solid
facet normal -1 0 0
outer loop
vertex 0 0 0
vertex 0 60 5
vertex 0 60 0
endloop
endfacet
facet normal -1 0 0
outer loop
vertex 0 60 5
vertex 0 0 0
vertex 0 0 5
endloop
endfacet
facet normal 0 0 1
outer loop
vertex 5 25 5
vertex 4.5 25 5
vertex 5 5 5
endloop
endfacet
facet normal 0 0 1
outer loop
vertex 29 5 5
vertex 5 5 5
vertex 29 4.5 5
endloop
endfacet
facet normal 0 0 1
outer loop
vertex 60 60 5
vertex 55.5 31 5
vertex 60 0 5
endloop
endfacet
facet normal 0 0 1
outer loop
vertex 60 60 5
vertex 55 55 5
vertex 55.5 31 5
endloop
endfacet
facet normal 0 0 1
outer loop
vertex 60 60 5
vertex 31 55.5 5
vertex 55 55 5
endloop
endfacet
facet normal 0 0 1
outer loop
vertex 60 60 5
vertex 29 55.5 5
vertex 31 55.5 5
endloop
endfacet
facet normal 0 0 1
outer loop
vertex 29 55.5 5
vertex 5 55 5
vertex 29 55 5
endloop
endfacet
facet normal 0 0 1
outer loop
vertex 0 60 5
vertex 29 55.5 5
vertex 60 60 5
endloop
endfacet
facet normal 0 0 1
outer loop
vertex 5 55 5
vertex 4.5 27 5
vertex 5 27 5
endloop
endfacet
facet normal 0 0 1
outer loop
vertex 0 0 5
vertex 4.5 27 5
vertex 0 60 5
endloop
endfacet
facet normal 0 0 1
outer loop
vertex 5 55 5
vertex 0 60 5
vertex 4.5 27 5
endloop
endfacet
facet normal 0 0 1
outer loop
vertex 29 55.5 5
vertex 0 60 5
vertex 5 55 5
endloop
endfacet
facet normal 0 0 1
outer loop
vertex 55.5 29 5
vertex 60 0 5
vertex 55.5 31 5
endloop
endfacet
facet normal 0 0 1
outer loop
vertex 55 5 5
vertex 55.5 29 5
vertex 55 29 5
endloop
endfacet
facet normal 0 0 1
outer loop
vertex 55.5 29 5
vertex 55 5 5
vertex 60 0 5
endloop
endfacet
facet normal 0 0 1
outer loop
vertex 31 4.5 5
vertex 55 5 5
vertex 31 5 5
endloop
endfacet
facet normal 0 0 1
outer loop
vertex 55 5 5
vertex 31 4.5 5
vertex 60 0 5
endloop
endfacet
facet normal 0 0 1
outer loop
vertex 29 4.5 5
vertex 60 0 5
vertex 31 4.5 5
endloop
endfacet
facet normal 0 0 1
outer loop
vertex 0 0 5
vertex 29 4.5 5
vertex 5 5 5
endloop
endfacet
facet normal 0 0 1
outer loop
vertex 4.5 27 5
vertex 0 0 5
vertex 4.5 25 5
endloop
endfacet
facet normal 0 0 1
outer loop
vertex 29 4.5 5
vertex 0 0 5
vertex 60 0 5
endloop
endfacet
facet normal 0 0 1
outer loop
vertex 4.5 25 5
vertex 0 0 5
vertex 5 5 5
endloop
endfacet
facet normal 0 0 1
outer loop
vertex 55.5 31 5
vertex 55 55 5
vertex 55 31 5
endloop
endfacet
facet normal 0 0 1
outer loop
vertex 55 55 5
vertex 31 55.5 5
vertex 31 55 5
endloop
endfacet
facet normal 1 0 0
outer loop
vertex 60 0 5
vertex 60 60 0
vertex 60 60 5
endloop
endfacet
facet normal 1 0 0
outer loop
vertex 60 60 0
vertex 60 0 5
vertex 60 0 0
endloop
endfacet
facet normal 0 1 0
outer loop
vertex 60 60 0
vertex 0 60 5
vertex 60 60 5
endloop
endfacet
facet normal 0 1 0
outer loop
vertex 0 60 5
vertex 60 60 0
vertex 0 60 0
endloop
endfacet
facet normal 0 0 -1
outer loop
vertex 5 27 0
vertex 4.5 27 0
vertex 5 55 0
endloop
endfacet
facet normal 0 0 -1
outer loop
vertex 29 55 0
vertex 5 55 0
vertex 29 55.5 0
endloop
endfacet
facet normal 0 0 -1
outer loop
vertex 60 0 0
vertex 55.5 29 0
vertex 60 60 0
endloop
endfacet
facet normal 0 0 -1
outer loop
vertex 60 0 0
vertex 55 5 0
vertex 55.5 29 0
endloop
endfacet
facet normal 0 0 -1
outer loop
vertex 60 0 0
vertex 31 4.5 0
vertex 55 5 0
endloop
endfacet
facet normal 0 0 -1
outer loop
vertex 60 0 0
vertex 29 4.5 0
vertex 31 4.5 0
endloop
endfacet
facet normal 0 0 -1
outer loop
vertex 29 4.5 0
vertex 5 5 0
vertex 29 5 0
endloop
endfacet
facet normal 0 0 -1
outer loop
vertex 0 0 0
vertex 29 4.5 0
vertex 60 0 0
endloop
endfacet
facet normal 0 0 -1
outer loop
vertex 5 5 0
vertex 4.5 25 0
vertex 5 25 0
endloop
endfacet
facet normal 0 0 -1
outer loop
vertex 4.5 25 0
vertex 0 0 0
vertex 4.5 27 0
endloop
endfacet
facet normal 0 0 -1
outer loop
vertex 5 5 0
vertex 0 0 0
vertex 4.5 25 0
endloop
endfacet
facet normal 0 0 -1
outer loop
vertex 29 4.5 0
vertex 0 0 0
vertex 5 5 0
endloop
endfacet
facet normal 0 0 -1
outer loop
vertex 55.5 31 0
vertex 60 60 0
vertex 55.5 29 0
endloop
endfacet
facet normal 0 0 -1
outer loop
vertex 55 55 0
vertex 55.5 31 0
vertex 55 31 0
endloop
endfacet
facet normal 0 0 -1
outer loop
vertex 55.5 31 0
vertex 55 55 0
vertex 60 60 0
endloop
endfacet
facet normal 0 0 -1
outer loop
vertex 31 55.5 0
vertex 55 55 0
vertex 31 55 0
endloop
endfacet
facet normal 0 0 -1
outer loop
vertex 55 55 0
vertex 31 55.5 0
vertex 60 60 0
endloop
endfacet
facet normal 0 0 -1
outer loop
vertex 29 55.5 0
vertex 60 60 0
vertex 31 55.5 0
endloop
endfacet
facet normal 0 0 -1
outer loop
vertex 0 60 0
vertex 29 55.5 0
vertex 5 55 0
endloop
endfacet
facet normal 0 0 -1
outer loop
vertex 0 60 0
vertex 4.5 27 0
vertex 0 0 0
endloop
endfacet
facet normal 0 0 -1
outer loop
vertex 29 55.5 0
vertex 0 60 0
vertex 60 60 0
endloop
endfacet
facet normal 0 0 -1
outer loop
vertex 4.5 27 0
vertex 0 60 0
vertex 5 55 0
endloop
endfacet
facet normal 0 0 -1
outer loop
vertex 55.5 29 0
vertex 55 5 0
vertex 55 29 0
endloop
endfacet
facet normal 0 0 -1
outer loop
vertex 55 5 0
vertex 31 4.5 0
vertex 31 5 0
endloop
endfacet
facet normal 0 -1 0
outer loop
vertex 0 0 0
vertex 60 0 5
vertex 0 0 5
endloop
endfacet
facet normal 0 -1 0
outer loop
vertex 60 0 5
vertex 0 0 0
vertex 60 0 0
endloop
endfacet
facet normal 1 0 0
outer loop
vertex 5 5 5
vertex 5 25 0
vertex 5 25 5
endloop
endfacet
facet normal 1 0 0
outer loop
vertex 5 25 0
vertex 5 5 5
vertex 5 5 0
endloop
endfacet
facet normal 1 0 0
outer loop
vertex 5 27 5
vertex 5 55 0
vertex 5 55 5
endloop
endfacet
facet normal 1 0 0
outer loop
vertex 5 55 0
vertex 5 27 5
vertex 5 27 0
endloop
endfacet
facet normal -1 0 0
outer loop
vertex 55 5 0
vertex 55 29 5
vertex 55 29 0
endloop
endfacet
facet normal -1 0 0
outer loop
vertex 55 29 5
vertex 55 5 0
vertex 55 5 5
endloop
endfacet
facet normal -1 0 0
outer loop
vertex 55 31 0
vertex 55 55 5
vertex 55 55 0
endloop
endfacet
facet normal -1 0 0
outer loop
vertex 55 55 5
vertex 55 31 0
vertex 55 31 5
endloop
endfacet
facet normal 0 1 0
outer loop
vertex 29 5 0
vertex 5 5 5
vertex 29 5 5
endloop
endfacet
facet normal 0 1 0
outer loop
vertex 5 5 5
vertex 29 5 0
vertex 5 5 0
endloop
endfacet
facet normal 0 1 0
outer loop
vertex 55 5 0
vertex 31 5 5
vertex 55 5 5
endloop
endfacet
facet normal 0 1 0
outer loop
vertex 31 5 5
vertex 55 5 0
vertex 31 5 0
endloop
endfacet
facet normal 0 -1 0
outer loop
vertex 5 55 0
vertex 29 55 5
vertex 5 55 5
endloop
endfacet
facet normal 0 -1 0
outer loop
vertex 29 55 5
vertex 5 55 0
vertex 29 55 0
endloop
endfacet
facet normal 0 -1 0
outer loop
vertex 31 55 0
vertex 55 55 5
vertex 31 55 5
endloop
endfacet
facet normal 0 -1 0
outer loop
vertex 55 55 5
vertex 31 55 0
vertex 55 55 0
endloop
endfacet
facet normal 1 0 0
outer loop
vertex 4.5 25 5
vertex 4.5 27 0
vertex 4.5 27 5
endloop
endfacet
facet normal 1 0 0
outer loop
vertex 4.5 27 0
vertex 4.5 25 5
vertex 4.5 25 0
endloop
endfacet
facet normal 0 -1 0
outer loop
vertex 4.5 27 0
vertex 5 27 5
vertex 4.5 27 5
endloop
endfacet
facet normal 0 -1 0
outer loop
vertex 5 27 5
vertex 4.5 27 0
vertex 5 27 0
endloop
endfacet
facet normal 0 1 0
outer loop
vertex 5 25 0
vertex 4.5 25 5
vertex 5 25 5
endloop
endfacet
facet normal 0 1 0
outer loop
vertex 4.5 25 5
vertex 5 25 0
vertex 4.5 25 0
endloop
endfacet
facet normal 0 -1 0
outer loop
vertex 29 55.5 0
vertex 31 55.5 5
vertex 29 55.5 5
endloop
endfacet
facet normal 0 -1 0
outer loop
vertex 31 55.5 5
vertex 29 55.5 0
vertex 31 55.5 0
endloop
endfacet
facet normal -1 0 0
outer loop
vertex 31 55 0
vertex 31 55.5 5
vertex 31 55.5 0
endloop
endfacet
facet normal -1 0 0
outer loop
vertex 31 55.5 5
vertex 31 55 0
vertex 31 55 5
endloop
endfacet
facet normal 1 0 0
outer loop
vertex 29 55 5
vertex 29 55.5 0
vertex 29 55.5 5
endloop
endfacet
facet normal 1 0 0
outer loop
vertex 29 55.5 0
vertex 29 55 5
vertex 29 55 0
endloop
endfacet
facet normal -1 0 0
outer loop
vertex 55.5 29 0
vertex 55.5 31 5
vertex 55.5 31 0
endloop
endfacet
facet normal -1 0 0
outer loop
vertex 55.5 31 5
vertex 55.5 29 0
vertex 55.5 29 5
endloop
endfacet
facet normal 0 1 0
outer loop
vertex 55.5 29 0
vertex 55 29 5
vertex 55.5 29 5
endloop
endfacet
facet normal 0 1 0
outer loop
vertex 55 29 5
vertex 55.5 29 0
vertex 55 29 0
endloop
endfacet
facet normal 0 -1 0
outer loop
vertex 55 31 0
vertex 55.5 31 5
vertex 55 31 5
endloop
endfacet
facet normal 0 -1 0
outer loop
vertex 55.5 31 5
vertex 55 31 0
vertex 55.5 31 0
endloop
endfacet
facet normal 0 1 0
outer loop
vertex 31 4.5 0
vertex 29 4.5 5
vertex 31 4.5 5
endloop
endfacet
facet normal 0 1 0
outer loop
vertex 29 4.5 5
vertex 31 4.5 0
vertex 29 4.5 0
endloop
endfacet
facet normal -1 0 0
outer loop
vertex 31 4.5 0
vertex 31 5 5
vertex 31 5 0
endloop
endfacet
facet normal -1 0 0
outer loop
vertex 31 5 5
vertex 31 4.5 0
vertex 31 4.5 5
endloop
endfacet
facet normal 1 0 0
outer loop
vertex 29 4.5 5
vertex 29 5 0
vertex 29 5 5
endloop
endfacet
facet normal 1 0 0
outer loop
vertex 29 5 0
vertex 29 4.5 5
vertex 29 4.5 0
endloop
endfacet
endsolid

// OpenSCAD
// Test square
//
// Generate STL using OpenSCAD:
//   openscad square.scad -o square.stl

square_width = 5;
square_size = 60;
square_height = 5;

module hollow_square() {
    difference() {
        cube([square_size, square_size, square_height]);
        translate([square_width, square_width, -1])
            cube([square_size-2*square_width, square_size-2*square_width,
                  square_height+2]);
    }
}

module notch() {
    CUT = 0.01;
    depth = .5;
    width = 1;
    translate([-depth, -width, -CUT])
        cube([2*depth, 2*width, square_height + 2*CUT]);
}

module square_with_notches() {
    difference() {
        // Start with initial square
        hollow_square();
        // Remove four notches on inside perimeter
        translate([square_width, square_size/2 - 4, 0])
            notch();
        translate([square_size/2, square_size - square_width, 0])
            rotate([0, 0, 90])
                notch();
        translate([square_size - square_width, square_size/2, 0])
            notch();
        translate([square_size/2, square_width, 0])
            rotate([0, 0, 90])
                notch();
    }
}

square_with_notches();
